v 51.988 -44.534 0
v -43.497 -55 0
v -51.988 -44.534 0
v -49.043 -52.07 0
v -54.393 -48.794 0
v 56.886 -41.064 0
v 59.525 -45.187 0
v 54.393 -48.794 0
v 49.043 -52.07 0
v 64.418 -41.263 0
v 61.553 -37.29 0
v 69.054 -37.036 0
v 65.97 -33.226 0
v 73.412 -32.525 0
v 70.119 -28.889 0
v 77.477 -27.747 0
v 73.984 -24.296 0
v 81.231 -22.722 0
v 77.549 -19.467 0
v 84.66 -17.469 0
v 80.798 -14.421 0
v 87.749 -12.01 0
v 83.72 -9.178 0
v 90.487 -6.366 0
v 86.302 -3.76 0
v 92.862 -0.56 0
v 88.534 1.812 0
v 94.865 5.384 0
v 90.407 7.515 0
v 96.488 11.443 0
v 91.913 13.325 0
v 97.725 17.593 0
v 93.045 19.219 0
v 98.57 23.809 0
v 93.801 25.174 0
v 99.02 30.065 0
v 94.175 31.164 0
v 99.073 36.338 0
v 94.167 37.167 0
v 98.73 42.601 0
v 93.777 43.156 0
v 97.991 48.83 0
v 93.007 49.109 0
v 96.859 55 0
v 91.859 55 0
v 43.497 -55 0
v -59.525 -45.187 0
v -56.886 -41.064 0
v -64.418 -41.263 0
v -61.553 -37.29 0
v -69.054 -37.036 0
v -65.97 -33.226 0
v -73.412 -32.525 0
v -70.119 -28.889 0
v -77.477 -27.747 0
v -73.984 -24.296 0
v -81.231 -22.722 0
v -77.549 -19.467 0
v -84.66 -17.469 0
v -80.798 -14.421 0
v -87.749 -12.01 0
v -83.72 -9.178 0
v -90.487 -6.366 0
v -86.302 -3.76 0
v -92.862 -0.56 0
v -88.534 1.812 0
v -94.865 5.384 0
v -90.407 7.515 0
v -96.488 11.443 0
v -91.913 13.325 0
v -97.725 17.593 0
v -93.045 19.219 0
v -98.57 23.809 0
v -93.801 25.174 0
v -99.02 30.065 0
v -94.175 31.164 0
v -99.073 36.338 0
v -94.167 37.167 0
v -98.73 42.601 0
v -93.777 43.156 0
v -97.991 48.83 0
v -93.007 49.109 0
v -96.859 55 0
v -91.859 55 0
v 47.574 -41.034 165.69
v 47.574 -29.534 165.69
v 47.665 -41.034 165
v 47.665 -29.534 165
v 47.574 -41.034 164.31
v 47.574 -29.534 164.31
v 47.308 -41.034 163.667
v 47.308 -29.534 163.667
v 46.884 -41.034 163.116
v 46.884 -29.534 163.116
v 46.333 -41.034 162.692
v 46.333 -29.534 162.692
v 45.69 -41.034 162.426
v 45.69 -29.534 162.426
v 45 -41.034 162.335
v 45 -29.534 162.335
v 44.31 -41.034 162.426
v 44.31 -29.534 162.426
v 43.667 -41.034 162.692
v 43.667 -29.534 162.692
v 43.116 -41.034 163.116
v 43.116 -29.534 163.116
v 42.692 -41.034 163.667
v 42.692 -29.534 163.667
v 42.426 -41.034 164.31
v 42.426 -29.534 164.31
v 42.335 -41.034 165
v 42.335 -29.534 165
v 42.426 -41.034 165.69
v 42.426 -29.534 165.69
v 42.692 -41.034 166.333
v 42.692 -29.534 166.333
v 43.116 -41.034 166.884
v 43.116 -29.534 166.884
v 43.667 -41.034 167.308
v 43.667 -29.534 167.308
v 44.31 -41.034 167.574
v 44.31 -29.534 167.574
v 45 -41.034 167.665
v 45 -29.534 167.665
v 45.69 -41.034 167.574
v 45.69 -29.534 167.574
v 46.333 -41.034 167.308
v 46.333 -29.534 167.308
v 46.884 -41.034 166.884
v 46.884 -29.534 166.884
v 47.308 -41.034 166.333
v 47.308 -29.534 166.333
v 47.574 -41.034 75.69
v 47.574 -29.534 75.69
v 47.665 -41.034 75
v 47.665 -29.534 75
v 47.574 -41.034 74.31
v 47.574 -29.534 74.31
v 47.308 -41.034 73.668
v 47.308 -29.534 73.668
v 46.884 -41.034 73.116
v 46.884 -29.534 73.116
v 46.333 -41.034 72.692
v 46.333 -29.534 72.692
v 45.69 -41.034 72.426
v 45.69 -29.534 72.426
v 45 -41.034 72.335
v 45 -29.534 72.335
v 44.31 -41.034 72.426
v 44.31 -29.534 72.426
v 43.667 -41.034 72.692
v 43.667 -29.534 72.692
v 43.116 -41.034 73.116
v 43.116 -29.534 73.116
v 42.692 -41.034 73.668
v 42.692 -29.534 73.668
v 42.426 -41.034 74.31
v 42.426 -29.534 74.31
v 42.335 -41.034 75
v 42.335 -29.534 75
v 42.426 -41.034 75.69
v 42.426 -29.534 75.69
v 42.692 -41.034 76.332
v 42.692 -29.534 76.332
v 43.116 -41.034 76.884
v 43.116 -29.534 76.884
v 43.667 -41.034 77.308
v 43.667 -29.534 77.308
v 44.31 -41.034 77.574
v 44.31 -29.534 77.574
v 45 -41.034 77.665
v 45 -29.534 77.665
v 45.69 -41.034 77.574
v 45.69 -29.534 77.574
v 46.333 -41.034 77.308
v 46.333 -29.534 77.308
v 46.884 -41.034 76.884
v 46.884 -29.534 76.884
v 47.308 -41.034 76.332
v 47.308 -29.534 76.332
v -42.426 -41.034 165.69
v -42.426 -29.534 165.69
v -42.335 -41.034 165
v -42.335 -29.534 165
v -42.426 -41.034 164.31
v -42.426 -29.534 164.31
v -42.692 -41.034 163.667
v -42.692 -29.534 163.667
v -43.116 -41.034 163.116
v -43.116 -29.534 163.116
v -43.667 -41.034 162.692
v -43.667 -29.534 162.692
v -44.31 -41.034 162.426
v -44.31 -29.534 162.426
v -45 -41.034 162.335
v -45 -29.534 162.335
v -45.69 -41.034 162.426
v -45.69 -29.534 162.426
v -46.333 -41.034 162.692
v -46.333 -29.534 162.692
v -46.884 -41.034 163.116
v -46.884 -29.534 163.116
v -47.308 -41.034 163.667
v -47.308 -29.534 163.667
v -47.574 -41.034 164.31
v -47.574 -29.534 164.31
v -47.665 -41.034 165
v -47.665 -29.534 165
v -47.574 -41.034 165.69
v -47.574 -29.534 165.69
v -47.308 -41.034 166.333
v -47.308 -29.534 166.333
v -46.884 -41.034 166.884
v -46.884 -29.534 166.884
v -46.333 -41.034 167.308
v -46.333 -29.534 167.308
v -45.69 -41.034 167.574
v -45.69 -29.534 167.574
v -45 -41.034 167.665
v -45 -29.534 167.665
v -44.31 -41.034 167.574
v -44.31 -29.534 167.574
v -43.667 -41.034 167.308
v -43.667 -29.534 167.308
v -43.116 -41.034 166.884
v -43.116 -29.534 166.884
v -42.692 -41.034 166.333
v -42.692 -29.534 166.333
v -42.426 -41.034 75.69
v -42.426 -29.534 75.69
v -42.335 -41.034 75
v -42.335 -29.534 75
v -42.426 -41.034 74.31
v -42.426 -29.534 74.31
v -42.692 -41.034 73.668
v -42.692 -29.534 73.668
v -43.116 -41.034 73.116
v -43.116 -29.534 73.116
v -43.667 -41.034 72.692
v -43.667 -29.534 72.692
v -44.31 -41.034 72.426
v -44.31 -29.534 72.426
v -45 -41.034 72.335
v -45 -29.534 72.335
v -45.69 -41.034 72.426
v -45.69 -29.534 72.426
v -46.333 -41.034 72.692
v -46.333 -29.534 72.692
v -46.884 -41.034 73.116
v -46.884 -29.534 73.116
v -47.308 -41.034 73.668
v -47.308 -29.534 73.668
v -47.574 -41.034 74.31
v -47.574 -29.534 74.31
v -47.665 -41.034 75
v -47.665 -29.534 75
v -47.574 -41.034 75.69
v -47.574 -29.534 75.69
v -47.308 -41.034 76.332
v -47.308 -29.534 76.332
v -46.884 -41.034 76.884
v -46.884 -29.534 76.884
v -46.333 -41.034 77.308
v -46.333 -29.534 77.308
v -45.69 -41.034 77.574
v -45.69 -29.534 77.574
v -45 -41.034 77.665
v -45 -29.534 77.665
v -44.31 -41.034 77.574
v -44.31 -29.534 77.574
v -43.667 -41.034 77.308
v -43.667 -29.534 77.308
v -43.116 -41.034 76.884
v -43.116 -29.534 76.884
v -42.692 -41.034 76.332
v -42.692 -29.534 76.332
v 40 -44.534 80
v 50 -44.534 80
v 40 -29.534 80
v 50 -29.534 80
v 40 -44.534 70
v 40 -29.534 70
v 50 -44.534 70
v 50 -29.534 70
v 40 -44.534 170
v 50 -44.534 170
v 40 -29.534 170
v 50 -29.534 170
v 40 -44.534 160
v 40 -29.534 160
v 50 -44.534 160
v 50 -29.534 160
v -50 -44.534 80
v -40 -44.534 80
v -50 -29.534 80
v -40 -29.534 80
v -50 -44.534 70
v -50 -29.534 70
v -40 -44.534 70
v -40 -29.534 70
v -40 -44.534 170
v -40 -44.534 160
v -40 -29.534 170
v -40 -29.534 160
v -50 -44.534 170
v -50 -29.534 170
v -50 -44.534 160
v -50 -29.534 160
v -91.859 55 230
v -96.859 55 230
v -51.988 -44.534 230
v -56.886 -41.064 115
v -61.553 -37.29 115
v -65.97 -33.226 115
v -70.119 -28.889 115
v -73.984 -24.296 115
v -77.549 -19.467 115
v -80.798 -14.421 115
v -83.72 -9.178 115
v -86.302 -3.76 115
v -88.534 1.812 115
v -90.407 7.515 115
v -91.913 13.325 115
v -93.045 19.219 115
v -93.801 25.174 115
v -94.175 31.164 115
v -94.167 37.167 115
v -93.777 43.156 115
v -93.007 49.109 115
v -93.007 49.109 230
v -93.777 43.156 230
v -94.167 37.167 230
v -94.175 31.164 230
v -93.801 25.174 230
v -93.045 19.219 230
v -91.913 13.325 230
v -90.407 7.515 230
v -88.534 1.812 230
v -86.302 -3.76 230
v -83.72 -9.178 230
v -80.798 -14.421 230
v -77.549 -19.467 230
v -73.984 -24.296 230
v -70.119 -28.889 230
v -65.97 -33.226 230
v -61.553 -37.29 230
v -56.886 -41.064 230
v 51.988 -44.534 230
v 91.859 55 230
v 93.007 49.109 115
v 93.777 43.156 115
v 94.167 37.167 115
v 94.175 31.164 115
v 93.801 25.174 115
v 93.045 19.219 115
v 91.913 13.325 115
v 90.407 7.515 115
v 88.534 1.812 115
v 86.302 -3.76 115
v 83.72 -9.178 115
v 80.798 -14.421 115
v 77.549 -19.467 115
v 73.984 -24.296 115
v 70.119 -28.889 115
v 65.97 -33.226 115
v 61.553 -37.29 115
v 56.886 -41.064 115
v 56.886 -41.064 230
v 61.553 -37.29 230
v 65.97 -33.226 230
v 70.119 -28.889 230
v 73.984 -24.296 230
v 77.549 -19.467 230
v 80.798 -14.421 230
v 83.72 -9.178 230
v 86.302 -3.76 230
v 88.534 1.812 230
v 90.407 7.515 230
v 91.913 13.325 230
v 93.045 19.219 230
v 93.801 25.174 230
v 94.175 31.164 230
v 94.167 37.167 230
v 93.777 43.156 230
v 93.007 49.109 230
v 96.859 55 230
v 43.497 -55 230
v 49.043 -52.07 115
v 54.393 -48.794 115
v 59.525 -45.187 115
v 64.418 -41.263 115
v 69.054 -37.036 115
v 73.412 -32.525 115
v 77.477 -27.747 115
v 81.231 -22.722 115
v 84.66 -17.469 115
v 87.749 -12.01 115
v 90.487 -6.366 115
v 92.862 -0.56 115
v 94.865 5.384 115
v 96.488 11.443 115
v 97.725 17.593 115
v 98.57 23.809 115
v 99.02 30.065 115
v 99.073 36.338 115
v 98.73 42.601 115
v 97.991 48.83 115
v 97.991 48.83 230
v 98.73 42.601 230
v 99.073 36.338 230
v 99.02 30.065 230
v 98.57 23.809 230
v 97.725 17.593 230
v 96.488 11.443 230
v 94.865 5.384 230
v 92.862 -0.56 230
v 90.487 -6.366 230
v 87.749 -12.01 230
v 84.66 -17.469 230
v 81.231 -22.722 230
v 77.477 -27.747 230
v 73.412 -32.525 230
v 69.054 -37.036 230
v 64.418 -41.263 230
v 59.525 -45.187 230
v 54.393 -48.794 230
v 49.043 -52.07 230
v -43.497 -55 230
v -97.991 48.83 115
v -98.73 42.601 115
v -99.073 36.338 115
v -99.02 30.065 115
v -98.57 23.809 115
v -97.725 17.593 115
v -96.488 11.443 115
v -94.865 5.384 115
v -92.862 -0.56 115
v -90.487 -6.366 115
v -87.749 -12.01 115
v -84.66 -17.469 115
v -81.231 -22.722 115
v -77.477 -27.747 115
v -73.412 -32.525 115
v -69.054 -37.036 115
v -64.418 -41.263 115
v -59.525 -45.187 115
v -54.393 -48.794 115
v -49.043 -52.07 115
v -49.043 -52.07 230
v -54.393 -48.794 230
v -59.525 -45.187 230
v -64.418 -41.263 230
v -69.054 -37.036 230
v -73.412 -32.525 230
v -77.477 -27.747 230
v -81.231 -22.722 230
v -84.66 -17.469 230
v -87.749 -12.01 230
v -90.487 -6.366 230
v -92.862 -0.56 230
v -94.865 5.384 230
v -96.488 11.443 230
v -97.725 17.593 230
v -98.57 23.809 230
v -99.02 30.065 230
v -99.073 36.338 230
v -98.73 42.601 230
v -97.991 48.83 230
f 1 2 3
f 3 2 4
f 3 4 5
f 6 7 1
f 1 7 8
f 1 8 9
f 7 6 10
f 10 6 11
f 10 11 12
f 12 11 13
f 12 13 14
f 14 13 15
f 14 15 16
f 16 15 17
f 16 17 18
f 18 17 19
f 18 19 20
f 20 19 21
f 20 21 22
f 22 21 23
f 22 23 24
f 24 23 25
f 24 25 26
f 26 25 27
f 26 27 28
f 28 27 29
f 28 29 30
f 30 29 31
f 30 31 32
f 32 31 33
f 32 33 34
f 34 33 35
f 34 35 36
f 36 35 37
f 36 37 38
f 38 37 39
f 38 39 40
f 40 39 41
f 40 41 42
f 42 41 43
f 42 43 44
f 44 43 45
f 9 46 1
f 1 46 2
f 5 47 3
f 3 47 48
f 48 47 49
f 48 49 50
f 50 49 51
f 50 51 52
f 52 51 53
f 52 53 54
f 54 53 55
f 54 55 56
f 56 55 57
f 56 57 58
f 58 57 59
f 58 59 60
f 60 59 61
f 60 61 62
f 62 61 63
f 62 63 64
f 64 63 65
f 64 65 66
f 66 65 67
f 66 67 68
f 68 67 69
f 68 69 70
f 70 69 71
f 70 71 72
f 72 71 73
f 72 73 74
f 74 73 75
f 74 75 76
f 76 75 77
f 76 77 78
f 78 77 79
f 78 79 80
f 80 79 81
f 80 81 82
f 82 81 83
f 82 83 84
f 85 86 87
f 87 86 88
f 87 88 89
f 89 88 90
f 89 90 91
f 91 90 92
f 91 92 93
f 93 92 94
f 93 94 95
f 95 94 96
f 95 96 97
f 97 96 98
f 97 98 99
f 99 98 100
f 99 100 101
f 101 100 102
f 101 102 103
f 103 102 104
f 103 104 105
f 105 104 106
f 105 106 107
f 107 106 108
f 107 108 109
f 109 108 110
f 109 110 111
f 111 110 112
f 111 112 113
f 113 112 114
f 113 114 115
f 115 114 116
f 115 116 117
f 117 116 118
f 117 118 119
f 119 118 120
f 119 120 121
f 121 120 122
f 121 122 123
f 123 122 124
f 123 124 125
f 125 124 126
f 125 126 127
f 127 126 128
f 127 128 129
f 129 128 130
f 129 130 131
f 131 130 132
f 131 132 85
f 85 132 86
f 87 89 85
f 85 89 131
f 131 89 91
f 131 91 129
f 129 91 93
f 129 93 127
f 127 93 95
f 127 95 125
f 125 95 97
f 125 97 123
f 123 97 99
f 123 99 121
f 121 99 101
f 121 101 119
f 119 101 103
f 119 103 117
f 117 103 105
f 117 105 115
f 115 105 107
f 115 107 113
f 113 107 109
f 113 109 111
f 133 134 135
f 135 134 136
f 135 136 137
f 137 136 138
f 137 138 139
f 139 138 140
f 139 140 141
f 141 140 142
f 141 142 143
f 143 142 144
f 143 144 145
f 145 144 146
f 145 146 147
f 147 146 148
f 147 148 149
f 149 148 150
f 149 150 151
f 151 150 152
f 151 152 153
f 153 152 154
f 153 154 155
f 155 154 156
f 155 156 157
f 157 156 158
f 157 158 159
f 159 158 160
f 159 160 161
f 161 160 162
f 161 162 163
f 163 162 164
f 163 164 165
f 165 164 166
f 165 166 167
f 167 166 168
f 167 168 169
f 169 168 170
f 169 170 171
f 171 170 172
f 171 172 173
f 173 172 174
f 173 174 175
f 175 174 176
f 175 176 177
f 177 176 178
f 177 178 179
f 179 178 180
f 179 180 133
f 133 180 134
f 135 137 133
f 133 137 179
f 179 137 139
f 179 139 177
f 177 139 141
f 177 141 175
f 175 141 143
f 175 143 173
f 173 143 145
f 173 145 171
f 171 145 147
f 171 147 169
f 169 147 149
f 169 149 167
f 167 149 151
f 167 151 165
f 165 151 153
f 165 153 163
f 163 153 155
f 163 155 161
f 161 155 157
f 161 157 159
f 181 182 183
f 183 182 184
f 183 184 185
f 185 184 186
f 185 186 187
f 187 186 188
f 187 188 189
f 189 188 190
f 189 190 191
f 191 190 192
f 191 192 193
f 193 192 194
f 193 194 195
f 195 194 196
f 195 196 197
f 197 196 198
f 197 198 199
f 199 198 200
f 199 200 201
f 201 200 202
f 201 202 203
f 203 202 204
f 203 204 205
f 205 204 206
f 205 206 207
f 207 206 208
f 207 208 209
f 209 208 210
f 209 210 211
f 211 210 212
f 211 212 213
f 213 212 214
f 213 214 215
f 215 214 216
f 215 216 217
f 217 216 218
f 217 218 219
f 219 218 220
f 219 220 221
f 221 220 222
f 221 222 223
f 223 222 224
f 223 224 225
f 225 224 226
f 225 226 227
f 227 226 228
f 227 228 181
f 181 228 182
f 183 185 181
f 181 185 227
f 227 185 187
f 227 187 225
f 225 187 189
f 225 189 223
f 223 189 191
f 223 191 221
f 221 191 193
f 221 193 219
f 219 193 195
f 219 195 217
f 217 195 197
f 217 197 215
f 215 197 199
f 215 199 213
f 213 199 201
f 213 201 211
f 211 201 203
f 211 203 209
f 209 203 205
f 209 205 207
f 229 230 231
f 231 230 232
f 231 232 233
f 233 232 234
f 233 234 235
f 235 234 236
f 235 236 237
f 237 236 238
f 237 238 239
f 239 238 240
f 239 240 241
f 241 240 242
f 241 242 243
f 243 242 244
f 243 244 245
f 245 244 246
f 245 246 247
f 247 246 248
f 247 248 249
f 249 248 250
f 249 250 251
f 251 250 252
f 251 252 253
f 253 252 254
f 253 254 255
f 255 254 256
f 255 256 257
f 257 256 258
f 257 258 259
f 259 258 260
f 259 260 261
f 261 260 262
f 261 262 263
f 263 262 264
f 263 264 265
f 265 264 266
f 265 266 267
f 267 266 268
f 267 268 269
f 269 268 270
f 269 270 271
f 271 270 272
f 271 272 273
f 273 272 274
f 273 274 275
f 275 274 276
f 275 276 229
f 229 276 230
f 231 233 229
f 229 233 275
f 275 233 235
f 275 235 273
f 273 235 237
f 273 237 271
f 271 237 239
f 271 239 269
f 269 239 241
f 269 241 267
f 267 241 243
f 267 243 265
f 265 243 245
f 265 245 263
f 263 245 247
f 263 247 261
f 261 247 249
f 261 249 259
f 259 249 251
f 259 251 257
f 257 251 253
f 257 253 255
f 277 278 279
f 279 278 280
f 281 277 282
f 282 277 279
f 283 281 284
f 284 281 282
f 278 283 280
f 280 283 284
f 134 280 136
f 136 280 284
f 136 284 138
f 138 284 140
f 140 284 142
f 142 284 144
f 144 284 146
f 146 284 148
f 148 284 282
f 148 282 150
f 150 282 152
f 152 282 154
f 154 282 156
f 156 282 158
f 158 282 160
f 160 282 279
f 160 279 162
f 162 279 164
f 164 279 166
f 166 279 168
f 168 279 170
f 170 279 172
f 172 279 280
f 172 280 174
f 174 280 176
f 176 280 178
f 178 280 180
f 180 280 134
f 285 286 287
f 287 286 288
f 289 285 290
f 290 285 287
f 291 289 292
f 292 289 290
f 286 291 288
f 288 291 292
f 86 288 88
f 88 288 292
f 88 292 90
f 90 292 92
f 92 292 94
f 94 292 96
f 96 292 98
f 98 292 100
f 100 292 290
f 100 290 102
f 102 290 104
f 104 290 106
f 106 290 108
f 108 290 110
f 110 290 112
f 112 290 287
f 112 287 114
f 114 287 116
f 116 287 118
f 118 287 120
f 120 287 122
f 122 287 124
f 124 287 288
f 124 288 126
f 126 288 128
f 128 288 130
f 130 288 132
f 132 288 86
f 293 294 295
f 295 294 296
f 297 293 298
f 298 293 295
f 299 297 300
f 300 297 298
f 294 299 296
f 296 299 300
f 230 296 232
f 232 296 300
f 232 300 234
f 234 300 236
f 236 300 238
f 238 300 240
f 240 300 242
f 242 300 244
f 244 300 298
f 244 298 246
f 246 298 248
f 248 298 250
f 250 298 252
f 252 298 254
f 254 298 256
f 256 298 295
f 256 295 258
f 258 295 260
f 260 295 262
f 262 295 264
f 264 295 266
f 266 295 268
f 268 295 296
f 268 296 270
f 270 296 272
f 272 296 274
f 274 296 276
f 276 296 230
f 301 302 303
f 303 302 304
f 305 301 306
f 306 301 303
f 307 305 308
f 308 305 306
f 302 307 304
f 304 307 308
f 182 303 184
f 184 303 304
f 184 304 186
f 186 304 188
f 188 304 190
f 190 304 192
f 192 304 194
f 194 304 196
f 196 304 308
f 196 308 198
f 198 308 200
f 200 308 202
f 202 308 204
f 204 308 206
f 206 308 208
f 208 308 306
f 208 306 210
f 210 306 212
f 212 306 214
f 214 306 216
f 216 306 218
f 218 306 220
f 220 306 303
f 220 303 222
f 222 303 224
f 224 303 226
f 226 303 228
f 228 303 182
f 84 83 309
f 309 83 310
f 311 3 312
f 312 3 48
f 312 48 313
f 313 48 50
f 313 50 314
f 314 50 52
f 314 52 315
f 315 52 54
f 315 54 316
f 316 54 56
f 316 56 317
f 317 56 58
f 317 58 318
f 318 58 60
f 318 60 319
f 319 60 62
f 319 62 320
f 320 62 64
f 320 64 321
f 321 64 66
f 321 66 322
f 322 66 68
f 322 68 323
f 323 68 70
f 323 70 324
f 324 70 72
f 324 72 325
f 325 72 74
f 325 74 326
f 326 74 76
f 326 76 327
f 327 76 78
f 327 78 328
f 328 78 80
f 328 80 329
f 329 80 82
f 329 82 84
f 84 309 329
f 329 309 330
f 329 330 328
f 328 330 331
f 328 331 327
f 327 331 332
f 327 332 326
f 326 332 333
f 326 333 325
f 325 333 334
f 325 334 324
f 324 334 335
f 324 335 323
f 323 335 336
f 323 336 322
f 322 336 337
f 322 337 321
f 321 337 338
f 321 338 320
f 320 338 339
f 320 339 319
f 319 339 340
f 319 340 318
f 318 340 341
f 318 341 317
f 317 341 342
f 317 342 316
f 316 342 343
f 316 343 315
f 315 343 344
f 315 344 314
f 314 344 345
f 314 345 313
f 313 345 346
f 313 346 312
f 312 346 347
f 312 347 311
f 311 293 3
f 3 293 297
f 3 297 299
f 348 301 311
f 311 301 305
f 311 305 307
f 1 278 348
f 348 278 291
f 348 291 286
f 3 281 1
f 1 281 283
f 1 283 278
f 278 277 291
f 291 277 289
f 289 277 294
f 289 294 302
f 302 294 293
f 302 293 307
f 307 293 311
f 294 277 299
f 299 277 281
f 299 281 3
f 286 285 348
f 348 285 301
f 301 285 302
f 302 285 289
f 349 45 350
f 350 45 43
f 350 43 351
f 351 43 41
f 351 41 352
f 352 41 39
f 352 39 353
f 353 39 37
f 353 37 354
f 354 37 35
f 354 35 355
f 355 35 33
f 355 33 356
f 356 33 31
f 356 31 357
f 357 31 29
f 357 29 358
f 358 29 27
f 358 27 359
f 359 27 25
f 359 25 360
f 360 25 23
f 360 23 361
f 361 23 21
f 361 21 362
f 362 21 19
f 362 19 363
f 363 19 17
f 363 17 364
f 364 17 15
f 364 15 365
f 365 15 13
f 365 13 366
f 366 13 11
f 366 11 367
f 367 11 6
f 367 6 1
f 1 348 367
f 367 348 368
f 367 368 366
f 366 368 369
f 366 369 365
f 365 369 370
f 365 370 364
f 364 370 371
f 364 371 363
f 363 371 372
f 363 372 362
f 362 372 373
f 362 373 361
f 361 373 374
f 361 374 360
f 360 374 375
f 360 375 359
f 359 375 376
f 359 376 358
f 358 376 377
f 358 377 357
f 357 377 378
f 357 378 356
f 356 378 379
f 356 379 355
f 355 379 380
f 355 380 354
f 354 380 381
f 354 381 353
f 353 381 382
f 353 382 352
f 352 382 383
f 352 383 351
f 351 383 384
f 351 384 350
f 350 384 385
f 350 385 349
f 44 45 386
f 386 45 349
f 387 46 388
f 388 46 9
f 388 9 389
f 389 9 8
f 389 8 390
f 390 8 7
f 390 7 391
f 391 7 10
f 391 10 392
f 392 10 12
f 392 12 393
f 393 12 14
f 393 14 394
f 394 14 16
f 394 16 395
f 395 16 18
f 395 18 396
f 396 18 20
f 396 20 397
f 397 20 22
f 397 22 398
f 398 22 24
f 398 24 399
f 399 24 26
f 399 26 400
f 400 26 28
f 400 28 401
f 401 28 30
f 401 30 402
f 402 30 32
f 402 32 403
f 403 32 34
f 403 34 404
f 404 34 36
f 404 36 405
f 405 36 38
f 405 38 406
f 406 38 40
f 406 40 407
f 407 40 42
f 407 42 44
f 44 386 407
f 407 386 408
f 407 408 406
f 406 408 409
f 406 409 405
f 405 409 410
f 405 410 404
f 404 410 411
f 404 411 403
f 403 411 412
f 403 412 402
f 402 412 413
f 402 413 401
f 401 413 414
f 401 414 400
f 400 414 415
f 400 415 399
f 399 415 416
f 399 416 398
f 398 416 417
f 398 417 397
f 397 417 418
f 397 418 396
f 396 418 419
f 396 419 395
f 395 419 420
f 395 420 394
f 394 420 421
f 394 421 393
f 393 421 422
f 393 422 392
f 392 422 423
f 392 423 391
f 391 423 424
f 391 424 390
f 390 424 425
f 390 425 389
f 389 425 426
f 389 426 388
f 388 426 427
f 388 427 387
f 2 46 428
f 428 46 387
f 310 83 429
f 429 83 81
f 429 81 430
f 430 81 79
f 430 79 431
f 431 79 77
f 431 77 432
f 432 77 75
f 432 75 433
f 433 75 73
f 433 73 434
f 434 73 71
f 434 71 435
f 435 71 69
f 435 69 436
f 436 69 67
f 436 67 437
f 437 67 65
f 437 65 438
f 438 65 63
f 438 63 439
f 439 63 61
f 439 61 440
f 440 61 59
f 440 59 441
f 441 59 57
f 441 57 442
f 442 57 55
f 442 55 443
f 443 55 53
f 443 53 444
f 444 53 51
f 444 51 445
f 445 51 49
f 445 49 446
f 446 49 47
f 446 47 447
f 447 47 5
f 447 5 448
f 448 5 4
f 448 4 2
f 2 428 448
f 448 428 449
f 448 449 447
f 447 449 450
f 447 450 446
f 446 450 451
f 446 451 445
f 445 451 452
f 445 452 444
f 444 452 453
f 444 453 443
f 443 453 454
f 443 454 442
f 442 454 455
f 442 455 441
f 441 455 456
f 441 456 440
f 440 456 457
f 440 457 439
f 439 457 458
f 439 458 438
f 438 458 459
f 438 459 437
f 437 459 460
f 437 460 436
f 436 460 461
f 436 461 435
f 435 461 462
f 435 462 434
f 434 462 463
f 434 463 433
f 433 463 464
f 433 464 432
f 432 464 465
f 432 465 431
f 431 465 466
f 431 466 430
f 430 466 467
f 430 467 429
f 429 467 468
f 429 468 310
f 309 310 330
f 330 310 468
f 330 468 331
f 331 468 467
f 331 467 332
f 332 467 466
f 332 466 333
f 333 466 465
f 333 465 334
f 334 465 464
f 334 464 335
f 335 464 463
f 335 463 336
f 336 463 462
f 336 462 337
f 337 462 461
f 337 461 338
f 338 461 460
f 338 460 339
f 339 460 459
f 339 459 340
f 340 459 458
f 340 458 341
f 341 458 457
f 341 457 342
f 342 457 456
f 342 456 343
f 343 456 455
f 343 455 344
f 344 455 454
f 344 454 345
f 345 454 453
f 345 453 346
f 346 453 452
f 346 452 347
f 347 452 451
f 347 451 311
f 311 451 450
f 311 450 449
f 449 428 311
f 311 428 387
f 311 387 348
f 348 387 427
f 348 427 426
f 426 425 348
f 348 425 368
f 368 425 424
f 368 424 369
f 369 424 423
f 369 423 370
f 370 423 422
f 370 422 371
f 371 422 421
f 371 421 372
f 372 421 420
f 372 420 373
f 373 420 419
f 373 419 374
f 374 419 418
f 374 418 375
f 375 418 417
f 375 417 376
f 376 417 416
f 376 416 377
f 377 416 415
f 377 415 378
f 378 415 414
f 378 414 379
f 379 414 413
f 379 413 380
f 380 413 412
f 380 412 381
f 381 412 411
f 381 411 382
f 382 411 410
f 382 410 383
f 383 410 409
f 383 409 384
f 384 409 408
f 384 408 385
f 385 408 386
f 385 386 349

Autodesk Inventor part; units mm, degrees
ref_plane "YZ Plane" through (0, 0, 0) normal (1, 0, 0) x (0, 1, 0)
ref_plane "XZ Plane" through (0, 0, 0) normal (0, 1, 0) x (-1, 0, 0)
ref_plane "XY Plane" through (0, 0, 0) normal (0, 0, 1) x (1, 0, 0)
sketch "Sketch1" plane through (0, 0, 0) normal (0, 0, 1) x (1, 0, 0)
  arc A0 (-96.8589, 55) -> (-43.4971, -55) centre (0, 34.0439) ccw projected
  line L0 (-43.4971, -55) -> (43.4971, -55) projected
  arc A1 (43.4971, -55) -> (96.8589, 55) centre (0, 34.0439) ccw projected
  line L1 (96.8589, 55) -> (91.8589, 55) projected
  arc A2 (51.9882, -44.5338) -> (91.8589, 55) centre (0, 34.0439) ccw projected
  arc A3 (-91.8589, 55) -> (-51.9882, -44.5338) centre (0, 34.0439) ccw projected
  line L2 (-91.8589, 55) -> (-96.8589, 55) projected
  line L3 (51.9882, -44.5338) -> (-51.9882, -44.5338) projected
  point P0 (0, 0)
extrude "Extrusion1" add sketch "Sketch1" along normal blind 230
sketch "Sketch2" plane through (-43.4971, -44.5338, 0) normal (0, 1, 0) x (1, 0, 0)
  circle A0 centre (-1.5029, -75) radius 1.6 construction
  circle A1 centre (-1.5029, -165) radius 1.6 construction
  circle A2 centre (88.4971, -75) radius 1.6 construction
  circle A3 centre (88.4971, -165) radius 1.6 construction
  line L0 (-6.5029, -70) -> (-6.5029, -170) construction
  line L1 (-6.5029, -170) -> (93.4971, -170) construction
  line L2 (93.4971, -170) -> (93.4971, -70) construction
  line L3 (93.4971, -70) -> (-6.5029, -70) construction
  line L4 (86.9943, 0) -> (0, 0) construction
  line L5 (0, 0) -> (0, -230) construction
  line L6 (86.9943, -230) -> (0, -230) construction
  line L7 (86.9943, 0) -> (86.9943, -230) construction
  line L8 (-6.5029, -80) -> (3.4971, -80)
  line L9 (3.4971, -80) -> (3.4971, -70)
  line L10 (3.4971, -70) -> (-6.5029, -70)
  line L11 (-6.5029, -70) -> (-6.5029, -80)
  line L12 (-6.5029, -80) -> (3.4971, -70) construction
  line L13 (3.4971, -80) -> (-6.5029, -70) construction
  line L14 (83.4971, -80) -> (93.4971, -80)
  line L15 (93.4971, -80) -> (93.4971, -70)
  line L16 (93.4971, -70) -> (83.4971, -70)
  line L17 (83.4971, -70) -> (83.4971, -80)
  line L18 (83.4971, -80) -> (93.4971, -70) construction
  line L19 (93.4971, -80) -> (83.4971, -70) construction
  line L20 (3.4971, -170) -> (-6.5029, -170)
  line L21 (-6.5029, -170) -> (-6.5029, -160)
  line L22 (-6.5029, -160) -> (3.4971, -160)
  line L23 (3.4971, -160) -> (3.4971, -170)
  line L24 (3.4971, -170) -> (-6.5029, -160) construction
  line L25 (-6.5029, -170) -> (3.4971, -160) construction
  line L26 (83.4971, -170) -> (93.4971, -170)
  line L27 (93.4971, -170) -> (93.4971, -160)
  line L28 (93.4971, -160) -> (83.4971, -160)
  line L29 (83.4971, -160) -> (83.4971, -170)
  line L30 (83.4971, -170) -> (93.4971, -160) construction
  line L31 (93.4971, -170) -> (83.4971, -160) construction
  point P0 (43.4971, 0)
  dimension "d2" = 10
  dimension "d3" = 10
  dimension "d4" = 10
  dimension "d5" = 10
  dimension "d6" = 10
  dimension "d7" = 10
  dimension "d8" = 10
  dimension "d9" = 10
extrude "Extrusion2" add sketch "Sketch2" along normal blind 15
sketch "Sketch3" plane through (-43.4971, -29.5338, 0) normal (0, 1, 0) x (1, 0, 0)
  circle A0 centre (-1.5029, -75) radius 1.6 construction
  circle A1 centre (-1.5029, -165) radius 1.6 construction
  circle A2 centre (88.4971, -75) radius 1.6 construction
  circle A3 centre (88.4971, -165) radius 1.6 construction
  line L0 (-6.5029, -70) -> (-6.5029, -170) construction
  line L1 (-6.5029, -170) -> (93.4971, -170) construction
  line L2 (93.4971, -170) -> (93.4971, -70) construction
  line L3 (93.4971, -70) -> (-6.5029, -70) construction
  circle A4 centre (-1.5029, -75) radius 2.665
  circle A5 centre (88.4971, -75) radius 2.665
  circle A6 centre (88.4971, -165) radius 2.665
  circle A7 centre (-1.5029, -165) radius 2.665
  point P0 (43.4971, 0)
  dimension "d12" = 5.33
  dimension "d13" = 5.33
  dimension "d14" = 5.33
  dimension "d15" = 5.33
extrude "Extrusion3" cut sketch "Sketch3" against normal blind 11.5
sketch "Sketch4" plane through (0, 0, 0) normal (0, 0, -1) x (-1, 0, 0)
  arc A0 (43.4971, -55) -> (96.8589, 55) centre (0, 34.0439) ccw construction
  line L0 (43.4971, -55) -> (-43.4971, -55) construction
  arc A1 (-96.8589, 55) -> (-43.4971, -55) centre (0, 34.0439) ccw construction
  line L1 (-96.8589, 55) -> (-91.8589, 55) construction
  arc A2 (-91.8589, 55) -> (-51.9882, -44.5338) centre (0, 34.0439) ccw construction
  line L2 (-51.9882, -44.5338) -> (51.9882, -44.5338) construction
  arc A3 (51.9882, -44.5338) -> (91.8589, 55) centre (0, 34.0439) ccw construction
  line L3 (91.8589, 55) -> (96.8589, 55) construction
  arc A4 (43.4971, -55) -> (96.8589, 55) centre (0, 34.0439) ccw construction
  line L4 (43.4971, -55) -> (-43.4971, -55) construction
  arc A5 (-96.8589, 55) -> (-43.4971, -55) centre (0, 34.0439) ccw construction
  line L5 (-96.8589, 55) -> (-91.8589, 55) construction
  arc A6 (-91.8589, 55) -> (-51.9882, -44.5338) centre (0, 34.0439) ccw construction
  arc A7 (51.9882, -44.5338) -> (91.8589, 55) centre (0, 34.0439) ccw construction
  line L6 (91.8589, 55) -> (96.8589, 55) construction
  line L7 (-51.9882, -44.5338) -> (51.9882, -44.5338)
  line L8 (47.665, -29.5338) -> (47.665, -41.0338) projected
  line L9 (-43.4971, -49.5338) -> (43.4971, -49.5338)
  arc A8 (-51.9882, -44.5338) -> (-43.4971, -49.5338) centre (0, 34.0439) ccw
  arc A9 (43.4971, -49.5338) -> (51.9882, -44.5338) centre (0, 34.0439) ccw
  arc A10 (43.4971, -49.5338) -> (91.8589, 55) centre (0, 34.0439) ccw projected
  line L10 (-51.9882, -44.5338) -> (51.9882, -44.5338) projected
  point P0 (0, 0)
extrude "Extrusion4" add sketch "Sketch4" against normal blind 30
properties part number "BackInsertV1_3DPrint"
